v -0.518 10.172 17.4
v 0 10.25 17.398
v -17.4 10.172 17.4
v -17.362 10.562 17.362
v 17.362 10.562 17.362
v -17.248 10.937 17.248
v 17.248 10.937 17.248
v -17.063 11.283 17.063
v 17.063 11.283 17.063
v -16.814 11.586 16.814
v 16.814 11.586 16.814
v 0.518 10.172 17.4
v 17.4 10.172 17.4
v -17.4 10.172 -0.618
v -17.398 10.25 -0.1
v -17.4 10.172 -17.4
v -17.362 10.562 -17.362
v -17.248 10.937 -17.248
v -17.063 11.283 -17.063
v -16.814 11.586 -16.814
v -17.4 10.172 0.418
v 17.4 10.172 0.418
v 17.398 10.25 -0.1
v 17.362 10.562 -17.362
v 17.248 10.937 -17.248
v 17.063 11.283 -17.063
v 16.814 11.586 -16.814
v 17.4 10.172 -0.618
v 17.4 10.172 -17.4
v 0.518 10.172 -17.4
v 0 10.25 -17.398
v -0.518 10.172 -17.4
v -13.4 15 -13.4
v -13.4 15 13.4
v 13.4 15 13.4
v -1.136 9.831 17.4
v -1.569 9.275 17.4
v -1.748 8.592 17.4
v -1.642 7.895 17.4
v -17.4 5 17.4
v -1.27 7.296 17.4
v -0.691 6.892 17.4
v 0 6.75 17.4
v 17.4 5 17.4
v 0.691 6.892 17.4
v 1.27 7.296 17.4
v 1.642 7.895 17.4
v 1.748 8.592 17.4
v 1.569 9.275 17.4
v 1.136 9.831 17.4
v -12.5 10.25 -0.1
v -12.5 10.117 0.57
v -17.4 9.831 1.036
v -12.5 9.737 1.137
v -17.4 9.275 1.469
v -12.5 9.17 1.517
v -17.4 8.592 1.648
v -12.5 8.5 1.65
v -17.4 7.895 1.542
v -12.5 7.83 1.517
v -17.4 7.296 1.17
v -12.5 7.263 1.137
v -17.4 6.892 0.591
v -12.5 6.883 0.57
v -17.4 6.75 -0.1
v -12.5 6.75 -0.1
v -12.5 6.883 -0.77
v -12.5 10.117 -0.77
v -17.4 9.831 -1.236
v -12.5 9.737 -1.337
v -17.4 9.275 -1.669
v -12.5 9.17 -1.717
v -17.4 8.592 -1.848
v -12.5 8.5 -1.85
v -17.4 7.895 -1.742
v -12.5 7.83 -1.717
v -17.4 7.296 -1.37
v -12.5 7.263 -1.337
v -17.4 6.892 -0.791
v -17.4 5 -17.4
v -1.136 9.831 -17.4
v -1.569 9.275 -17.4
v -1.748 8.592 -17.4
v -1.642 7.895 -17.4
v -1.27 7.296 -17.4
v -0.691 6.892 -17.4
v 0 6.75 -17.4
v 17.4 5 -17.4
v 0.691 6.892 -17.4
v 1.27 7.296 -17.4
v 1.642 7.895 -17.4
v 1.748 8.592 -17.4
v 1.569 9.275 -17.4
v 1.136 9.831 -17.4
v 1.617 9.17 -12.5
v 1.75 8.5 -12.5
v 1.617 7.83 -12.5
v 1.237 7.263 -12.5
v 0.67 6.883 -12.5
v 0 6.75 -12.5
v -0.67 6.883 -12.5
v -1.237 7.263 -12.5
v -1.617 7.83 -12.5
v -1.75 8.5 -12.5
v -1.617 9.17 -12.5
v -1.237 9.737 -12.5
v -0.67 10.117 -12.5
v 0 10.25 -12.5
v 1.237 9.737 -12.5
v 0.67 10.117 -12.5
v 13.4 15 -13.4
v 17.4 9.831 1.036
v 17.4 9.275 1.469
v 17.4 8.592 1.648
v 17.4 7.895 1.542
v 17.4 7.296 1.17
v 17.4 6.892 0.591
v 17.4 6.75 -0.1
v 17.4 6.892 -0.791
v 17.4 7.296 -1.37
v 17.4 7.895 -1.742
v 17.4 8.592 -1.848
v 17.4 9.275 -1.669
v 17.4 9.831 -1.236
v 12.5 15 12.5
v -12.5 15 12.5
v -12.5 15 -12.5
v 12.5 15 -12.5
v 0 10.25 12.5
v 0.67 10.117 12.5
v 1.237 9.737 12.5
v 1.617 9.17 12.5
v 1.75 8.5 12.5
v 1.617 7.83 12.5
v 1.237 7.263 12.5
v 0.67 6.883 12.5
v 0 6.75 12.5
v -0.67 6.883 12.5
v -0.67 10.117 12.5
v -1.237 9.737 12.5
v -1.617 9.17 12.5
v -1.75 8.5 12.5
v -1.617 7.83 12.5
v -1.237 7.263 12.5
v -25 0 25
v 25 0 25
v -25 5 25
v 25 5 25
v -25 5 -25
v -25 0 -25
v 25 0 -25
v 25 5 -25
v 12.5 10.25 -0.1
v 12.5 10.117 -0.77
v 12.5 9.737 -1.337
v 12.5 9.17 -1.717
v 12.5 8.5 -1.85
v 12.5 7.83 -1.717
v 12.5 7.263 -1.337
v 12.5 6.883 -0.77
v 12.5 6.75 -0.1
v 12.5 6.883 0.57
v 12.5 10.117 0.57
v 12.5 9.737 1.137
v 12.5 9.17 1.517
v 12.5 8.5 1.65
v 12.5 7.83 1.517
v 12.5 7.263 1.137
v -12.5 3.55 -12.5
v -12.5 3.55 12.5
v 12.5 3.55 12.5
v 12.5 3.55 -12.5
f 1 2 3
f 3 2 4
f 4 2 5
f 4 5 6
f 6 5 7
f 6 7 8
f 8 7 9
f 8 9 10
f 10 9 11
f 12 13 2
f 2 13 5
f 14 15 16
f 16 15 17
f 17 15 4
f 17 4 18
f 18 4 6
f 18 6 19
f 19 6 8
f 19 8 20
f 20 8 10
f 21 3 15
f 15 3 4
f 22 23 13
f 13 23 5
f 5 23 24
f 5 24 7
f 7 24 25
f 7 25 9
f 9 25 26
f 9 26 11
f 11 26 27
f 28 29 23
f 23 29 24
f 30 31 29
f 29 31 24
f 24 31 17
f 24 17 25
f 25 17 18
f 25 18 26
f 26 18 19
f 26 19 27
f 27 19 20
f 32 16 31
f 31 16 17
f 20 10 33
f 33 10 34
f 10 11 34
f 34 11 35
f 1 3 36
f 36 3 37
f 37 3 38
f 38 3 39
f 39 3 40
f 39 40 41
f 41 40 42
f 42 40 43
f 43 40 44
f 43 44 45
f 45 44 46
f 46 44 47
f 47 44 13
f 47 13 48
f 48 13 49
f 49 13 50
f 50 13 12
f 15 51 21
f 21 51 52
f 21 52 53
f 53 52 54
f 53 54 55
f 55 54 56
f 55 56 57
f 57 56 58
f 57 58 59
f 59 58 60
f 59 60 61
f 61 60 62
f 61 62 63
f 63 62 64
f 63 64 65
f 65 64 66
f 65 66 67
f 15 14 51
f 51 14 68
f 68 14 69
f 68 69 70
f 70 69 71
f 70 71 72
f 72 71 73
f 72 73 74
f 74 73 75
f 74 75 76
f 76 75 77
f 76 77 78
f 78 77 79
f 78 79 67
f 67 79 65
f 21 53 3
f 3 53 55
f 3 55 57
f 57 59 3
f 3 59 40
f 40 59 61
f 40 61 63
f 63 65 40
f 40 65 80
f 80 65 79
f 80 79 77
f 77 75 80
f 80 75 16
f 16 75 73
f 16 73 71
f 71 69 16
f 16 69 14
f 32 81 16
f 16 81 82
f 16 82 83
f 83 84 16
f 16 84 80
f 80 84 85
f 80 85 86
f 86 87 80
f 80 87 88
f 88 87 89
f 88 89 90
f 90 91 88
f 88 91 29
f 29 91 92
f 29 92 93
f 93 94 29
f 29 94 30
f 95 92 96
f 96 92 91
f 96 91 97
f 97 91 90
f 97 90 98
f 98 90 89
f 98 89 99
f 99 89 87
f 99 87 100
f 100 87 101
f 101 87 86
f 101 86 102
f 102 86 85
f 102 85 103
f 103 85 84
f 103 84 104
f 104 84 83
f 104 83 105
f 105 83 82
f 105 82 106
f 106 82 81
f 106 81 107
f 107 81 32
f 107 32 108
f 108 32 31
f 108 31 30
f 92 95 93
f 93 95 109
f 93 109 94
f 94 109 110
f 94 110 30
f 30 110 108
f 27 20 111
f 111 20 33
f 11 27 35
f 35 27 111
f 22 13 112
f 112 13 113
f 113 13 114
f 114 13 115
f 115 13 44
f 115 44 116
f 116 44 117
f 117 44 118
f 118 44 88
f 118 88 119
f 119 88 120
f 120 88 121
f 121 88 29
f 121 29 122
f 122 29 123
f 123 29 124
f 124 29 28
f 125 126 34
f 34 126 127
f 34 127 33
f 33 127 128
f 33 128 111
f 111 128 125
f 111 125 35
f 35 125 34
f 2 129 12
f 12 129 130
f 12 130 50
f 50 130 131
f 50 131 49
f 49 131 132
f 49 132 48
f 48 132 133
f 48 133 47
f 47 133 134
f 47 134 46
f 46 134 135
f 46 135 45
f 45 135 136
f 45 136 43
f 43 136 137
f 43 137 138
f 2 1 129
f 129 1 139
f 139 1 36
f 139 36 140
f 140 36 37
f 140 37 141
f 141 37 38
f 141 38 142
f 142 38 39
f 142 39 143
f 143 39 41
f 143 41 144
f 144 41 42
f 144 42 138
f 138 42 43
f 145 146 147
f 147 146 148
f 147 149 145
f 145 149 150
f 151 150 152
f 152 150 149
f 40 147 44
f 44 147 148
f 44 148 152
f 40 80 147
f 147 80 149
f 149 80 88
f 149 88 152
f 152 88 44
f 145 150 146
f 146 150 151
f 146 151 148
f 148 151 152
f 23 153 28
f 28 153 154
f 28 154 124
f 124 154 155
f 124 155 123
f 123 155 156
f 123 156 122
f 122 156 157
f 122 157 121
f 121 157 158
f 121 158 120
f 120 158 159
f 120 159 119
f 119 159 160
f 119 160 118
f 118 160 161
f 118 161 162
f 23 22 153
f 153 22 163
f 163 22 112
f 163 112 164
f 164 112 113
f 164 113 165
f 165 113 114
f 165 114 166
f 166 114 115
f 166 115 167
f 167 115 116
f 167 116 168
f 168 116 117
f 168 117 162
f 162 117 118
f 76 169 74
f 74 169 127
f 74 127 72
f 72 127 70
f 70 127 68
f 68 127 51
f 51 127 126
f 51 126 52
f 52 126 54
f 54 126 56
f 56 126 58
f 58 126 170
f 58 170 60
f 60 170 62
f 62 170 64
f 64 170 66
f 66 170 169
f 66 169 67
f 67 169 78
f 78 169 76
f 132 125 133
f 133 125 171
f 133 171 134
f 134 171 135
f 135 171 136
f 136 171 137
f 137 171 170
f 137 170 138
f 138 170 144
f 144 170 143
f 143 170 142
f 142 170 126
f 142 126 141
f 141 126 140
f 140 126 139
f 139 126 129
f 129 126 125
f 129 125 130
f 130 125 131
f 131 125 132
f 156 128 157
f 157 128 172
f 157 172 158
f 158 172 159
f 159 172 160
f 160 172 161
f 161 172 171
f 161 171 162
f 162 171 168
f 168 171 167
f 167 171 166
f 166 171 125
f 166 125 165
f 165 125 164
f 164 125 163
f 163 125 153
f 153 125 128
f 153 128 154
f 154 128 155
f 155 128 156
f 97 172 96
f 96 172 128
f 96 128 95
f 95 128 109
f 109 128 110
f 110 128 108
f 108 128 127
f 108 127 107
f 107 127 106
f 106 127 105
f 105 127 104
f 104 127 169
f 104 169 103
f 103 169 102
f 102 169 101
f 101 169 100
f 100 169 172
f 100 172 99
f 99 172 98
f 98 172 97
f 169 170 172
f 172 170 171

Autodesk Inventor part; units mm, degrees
ref_plane "YZ Plane" through (0, 0, 0) normal (1, 0, 0) x (0, 1, 0)
ref_plane "XZ Plane" through (0, 0, 0) normal (0, 1, 0) x (-1, 0, 0)
ref_plane "XY Plane" through (0, 0, 0) normal (0, 0, 1) x (1, 0, 0)
sketch "Sketch1" plane through (0, 0, 0) normal (0, 1, 0) x (-1, 0, 0)
  line L0 (-25, 25) -> (25, 25)
  line L1 (25, 25) -> (25, -25)
  line L2 (25, -25) -> (-25, -25)
  line L3 (-25, -25) -> (-25, 25)
  line L4 (-25, 25) -> (25, -25) construction
  line L5 (25, 25) -> (-25, -25) construction
  line L6 (-17.4, 17.4) -> (17.4, 17.4)
  line L7 (17.4, 17.4) -> (17.4, -17.4)
  line L8 (17.4, -17.4) -> (-17.4, -17.4)
  line L9 (-17.4, -17.4) -> (-17.4, 17.4)
  line L10 (-17.4, 17.4) -> (17.4, -17.4) construction
  line L11 (17.4, 17.4) -> (-17.4, -17.4) construction
  point P0 (0, 0)
  dimension "d0" = 50
  dimension "d1" = 50
  dimension "d2" = 34.8
  dimension "d3" = 34.8
extrude "Extrusion1" add sketch "Sketch1" along normal blind 5
extrude "Extrusion2" add sketch "Sketch1" along normal blind 15 contours L6 L7 L8 L9
sketch "Sketch3" plane through (0, 15, 0) normal (0, 1, 0) x (1, 0, 0)
  point P0 (0, 0)
ref_plane "Work Plane6" through (0, 5, 17.4) normal (-1, 0, 0) x (0, 0, 1)
ref_plane "Work Plane7" through (-17.4, 5, 0) normal (0, 0, 1) x (1, 0, 0)
sketch "Sketch6" plane through (0, 0, 0) normal (0, -1, 0) x (1, 0, 0)
  line L0 (-25, 25) -> (25, 25) projected
  line L1 (-5, -25) -> (5, -25)
  line L2 (5, -25) -> (5, 25)
  line L3 (5, 25) -> (-5, 25)
  line L4 (-5, 25) -> (-5, -25)
  line L5 (-5, -25) -> (5, 25) construction
  line L6 (5, -25) -> (-5, 25) construction
  line L7 (25, 25) -> (25, -25) projected
  line L8 (-25, -5) -> (25, -5)
  line L9 (25, -5) -> (25, 5)
  line L10 (25, 5) -> (-25, 5)
  line L11 (-25, 5) -> (-25, -5)
  line L12 (-25, -5) -> (25, 5) construction
  line L13 (25, -5) -> (-25, 5) construction
  point P0 (0, 0)
  point P1 (-5, -5)
  point P2 (5, -5)
  point P3 (5, 5)
  point P4 (-5, 5)
  dimension "d14" = 10
extrude "Extrusion5" add sketch "Sketch6" along normal blind 2 contours L0 L2 L10 L4 | L10 L2 L8 L4 | L4 L8 L11 L10 | L10 L7 L8 L2 | L8 L2 L1 L4
sketch "Sketch7" plane through (-25, 0, 25) normal (-1, 0, 0) x (0, 0, 1)
  line L0 (-20, -2) -> (-30, -2) projected
  line L1 (-7.6, 5) -> (-42.4, 5) projected
  line L2 (-20, -2) -> (-30, -2)
  line L3 (-30, -2) -> (-30, 5)
  line L4 (-30, 5) -> (-20, 5)
  line L5 (-20, 5) -> (-20, -2)
  point P0 (-25, 0)
  dimension "d17" = 10
extrude "Extrusion6" add sketch "Sketch7" along normal blind 2
mirror "Mirror4" about plane through (0, 5, 17.4) normal (-1, 0, 0) of "Extrusion6"
sketch "Sketch8" plane through (25, 5, -25) normal (0, 0, -1) x (-1, 0, 0)
  line L0 (30, -7) -> (20, -7) projected
  line L1 (0, 0) -> (50, 0) projected
  line L2 (20, -7) -> (30, -7)
  line L3 (30, -7) -> (30, 0)
  line L4 (30, 0) -> (20, 0)
  line L5 (20, 0) -> (20, -7)
  point P0 (25, -5)
  dimension "d20" = 10
extrude "Extrusion7" add sketch "Sketch8" along normal blind 2
mirror "Mirror5" about plane through (-17.4, 5, 0) normal (0, 0, 1) of "Extrusion7"
sketch "Sketch9" plane through (0, 0, 0) normal (0, -1, 0) x (1, 0, 0)
  line L0 (-27, 27) -> (27, 27)
  line L1 (27, 27) -> (27, -27)
  line L2 (27, -27) -> (-27, -27)
  line L3 (-27, -27) -> (-27, 27)
  line L4 (-27, 27) -> (27, -27) construction
  line L5 (27, 27) -> (-27, -27) construction
  point P0 (0, 0)
  dimension "d24" = 54
  dimension "d25" = 54
extrude "Extrusion8" cut sketch "Sketch9" along normal blind 6.75
sketch "Sketch10" plane through (0, 15, 0) normal (0, 1, 0) x (1, 0, 0)
  line L0 (12.5, -12.5) -> (-12.5, -12.5)
  line L1 (-12.5, -12.5) -> (-12.5, 12.5)
  line L2 (-12.5, 12.5) -> (12.5, 12.5)
  line L3 (12.5, 12.5) -> (12.5, -12.5)
  line L4 (12.5, -12.5) -> (-12.5, 12.5) construction
  line L5 (-12.5, -12.5) -> (12.5, 12.5) construction
  point P0 (0, 0)
  dimension "d28" = 25
  dimension "d29" = 25
extrude "Extrusion9" cut sketch "Sketch10" against normal blind 11.45
sketch "Sketch11" plane through (-17.4, 5, 17.4) normal (-1, 0, 0) x (0, 0, 1)
  line L0 (-17.5, 0.0162) -> (-17.5, 3.5)
  circle A0 centre (-17.5, 3.5) radius 1.75
  line L1 (0, 0) -> (-34.8, 0) projected
  line L2 (-17.4, 0) -> (-18.8366, 0)
  point P0 (-17.4, -5)
  dimension "d34" = 3.5
  dimension "d57" = 3.5
extrude "Extrusion10" cut sketch "Sketch11" against normal through all
sketch "Sketch14" plane through (27, 0, -5) normal (1, 0, 0) x (0, 0, -1)
  line L0 (12.4, 5) -> (-22.4, 5) projected
  line L1 (-15, 0) -> (5, 0)
  line L2 (5, 0) -> (5, 5)
  line L3 (5, 5) -> (-15, 5)
  line L4 (-15, 5) -> (-15, 0)
  line L5 (-15, 0) -> (5, 5) construction
  line L6 (5, 0) -> (-15, 5) construction
  point P0 (-5, 0)
  point P1 (-5, 2.5)
  dimension "d43" = 20
extrude "Extrusion13" cut sketch "Sketch14" against normal blind 2
pattern_circular "Circular Pattern1" count 4 over 360 about axis through (0, -10, 0) along (0, 1, 0) of "Extrusion13"
sketch "Sketch15" plane through (17.4, 5, -17.4) normal (0, 0, -1) x (-1, 0, 0)
  line L0 (42.4, 0) -> (-7.6, 0) projected
  line L1 (17.4, 0) -> (17.4, 3.5)
  circle A0 centre (17.4, 3.5) radius 1.75
  point P0 (17.4, -5)
  point P1 (27.4, 0)
  point P2 (7.4, 0)
  dimension "d49" = 3.5
  dimension "d50" = 3.5
extrude "Extrusion14" cut sketch "Sketch15" against normal through all
chamfer "Chamfer1" distance 4 distance2 4 4 edges at (0, 15, -17.4) (-17.4, 15, 0) (0, 15, 17.4) (17.4, 15, 0) measured on face at (15.7667, 15, 4.1667)
fillet "Fillet1" radius 2 4 edges at (0, 11, -17.4) (-17.4, 11, 0) (0, 11, 17.4) (17.4, 11, 0)
properties part number "Pokrywka"
